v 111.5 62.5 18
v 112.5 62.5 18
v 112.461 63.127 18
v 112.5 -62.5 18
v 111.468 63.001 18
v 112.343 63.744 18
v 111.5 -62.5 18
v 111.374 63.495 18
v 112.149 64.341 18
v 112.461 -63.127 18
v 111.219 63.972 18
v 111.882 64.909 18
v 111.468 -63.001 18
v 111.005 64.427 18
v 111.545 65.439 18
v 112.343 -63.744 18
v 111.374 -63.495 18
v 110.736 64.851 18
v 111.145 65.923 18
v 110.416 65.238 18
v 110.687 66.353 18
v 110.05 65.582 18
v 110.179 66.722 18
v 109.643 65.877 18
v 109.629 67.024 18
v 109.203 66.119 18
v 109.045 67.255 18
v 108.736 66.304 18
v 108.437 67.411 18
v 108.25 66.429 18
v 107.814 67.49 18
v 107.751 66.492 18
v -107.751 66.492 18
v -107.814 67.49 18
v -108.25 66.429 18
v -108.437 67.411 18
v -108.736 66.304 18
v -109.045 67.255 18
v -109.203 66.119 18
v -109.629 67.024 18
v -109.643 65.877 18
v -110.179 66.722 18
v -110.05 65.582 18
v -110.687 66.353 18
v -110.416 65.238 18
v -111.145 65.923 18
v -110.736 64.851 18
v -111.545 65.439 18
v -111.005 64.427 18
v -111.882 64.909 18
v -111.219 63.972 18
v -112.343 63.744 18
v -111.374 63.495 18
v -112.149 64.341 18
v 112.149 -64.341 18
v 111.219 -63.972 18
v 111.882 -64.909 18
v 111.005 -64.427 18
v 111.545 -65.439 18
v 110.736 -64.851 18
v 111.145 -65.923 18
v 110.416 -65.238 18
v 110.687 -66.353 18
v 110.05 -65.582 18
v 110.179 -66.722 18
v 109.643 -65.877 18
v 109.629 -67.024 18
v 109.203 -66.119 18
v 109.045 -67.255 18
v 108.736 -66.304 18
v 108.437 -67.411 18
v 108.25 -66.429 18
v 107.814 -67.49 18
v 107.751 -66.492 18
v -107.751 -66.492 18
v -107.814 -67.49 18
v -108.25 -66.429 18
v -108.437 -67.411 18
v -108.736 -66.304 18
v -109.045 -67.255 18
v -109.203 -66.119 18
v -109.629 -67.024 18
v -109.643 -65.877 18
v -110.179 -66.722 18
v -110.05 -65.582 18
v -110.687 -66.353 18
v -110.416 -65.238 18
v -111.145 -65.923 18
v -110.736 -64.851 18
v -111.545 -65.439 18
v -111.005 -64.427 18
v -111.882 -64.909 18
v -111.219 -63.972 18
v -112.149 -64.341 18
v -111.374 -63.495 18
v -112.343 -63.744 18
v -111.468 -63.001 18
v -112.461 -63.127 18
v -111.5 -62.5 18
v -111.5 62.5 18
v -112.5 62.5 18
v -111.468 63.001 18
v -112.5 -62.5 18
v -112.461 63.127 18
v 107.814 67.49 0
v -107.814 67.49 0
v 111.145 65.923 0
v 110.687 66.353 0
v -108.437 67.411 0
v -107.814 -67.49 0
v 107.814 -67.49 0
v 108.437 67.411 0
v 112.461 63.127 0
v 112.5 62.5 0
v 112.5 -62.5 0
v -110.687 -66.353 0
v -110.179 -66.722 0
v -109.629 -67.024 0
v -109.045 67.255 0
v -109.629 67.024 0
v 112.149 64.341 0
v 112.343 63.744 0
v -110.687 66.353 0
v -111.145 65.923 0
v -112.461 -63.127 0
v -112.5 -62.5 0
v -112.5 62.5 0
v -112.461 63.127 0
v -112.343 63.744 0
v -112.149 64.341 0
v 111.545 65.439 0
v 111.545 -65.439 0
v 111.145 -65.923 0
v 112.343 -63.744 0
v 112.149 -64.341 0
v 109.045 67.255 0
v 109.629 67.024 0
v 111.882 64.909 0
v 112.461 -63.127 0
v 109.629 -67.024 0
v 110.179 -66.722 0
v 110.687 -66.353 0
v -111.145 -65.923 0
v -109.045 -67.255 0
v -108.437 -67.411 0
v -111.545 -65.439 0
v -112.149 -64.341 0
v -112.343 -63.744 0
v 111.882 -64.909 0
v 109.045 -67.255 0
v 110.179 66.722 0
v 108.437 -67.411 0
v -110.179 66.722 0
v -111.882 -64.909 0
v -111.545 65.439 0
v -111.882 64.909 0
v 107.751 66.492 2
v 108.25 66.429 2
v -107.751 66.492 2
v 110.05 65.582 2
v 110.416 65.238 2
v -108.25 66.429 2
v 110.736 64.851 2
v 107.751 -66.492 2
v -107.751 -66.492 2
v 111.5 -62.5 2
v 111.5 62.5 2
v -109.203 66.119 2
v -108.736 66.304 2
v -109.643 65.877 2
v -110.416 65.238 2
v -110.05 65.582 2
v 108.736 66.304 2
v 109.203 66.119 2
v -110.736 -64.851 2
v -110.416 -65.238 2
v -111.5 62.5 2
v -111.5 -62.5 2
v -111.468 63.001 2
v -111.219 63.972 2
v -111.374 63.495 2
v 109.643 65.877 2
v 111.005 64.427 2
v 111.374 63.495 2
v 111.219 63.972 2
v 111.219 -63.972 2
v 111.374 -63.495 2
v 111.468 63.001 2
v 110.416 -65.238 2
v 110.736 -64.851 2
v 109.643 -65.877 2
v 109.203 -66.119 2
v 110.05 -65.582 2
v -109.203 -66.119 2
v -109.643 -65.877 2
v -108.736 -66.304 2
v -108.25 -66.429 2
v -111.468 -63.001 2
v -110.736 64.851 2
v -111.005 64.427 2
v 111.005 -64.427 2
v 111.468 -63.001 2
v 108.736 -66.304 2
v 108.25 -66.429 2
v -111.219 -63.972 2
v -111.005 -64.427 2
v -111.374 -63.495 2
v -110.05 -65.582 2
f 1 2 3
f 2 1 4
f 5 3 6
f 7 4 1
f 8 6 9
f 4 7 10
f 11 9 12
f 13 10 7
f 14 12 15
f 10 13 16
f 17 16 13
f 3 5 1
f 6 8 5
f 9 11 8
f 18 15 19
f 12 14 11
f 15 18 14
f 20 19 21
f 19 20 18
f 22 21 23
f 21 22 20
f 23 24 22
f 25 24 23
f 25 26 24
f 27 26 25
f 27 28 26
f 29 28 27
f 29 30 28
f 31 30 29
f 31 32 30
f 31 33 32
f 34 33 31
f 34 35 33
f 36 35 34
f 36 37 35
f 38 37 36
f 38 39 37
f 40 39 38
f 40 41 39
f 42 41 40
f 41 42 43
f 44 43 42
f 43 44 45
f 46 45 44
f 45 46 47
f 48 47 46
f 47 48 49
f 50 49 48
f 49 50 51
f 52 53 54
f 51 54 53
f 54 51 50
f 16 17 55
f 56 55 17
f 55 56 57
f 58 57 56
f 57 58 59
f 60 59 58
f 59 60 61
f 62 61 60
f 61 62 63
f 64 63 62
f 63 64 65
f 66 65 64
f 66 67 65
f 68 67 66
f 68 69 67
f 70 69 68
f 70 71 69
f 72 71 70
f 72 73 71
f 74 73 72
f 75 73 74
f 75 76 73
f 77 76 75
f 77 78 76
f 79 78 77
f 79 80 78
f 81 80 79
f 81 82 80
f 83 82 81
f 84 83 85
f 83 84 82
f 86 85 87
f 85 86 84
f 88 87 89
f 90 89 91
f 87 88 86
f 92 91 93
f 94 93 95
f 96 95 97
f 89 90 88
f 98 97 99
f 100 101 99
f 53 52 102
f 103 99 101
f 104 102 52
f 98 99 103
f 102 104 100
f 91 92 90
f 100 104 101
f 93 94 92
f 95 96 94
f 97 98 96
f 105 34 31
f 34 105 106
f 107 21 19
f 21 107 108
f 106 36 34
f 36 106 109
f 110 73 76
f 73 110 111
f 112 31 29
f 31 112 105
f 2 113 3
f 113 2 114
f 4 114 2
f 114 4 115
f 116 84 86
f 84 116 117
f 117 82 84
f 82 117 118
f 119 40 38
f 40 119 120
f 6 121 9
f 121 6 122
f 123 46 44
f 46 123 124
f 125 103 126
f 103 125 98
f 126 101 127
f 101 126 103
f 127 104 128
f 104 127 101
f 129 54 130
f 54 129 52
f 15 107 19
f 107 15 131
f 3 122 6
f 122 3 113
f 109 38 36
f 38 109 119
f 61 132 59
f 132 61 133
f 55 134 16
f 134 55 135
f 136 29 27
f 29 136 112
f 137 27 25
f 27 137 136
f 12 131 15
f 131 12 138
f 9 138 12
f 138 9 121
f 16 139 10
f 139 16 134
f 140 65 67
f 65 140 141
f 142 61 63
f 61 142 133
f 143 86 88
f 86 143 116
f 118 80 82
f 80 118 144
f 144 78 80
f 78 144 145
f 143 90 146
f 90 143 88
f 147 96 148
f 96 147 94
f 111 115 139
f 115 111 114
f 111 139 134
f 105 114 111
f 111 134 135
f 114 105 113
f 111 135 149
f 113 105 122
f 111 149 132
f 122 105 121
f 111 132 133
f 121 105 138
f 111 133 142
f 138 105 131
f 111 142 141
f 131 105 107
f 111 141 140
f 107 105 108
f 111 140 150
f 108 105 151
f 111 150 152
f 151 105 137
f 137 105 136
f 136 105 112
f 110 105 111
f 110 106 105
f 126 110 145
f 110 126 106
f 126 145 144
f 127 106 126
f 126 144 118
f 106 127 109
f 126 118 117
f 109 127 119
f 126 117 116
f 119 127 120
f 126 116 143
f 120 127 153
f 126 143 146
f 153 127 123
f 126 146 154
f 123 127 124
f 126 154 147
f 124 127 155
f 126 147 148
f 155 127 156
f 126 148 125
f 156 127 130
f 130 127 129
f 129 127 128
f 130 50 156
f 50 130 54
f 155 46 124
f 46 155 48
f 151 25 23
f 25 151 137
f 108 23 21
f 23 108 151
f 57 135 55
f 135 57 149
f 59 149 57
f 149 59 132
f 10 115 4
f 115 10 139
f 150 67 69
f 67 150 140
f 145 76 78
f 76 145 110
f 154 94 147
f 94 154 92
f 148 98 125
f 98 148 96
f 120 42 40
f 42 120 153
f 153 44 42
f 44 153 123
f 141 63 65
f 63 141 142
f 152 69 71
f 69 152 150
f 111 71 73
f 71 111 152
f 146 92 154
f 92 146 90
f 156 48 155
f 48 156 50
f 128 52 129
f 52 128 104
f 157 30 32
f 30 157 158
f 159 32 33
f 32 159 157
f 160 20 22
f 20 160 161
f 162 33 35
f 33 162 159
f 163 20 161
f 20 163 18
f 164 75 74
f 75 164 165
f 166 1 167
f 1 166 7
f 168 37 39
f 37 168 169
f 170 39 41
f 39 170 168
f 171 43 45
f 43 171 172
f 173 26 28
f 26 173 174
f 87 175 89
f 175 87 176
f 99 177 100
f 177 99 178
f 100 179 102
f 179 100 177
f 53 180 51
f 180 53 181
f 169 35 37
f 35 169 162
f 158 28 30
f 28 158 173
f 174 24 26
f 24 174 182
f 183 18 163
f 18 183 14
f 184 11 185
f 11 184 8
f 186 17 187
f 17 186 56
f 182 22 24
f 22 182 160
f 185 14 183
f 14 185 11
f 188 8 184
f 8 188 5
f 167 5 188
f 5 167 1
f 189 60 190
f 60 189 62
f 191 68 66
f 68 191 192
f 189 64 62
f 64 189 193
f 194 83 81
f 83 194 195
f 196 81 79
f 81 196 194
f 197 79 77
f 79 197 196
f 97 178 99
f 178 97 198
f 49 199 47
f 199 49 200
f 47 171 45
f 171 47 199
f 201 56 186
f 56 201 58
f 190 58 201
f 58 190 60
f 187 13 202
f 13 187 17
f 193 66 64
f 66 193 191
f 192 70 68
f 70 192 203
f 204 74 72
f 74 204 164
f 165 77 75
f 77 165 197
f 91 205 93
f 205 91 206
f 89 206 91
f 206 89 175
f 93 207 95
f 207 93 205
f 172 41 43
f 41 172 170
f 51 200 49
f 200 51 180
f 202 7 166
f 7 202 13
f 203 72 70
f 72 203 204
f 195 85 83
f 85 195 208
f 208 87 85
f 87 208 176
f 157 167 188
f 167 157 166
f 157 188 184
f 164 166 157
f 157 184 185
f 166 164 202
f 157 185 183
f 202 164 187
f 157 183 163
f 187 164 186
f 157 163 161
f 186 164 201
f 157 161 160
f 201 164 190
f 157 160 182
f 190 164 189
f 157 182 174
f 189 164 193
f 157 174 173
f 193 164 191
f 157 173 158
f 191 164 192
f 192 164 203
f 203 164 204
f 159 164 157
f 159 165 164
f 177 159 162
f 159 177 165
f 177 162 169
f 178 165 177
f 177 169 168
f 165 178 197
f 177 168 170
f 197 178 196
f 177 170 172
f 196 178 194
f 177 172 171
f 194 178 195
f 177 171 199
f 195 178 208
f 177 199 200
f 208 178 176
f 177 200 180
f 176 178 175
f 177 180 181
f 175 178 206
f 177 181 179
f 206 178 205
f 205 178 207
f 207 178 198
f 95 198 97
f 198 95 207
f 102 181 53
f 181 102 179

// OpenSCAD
$fn = 50;


difference() {
	union() {
		hull() {
			translate(v = [-107.5000000000, 62.5000000000, 0]) {
				cylinder(h = 18, r = 5);
			}
			translate(v = [107.5000000000, 62.5000000000, 0]) {
				cylinder(h = 18, r = 5);
			}
			translate(v = [-107.5000000000, -62.5000000000, 0]) {
				cylinder(h = 18, r = 5);
			}
			translate(v = [107.5000000000, -62.5000000000, 0]) {
				cylinder(h = 18, r = 5);
			}
		}
	}
	union() {
		translate(v = [0, 0, 2]) {
			hull() {
				translate(v = [-107.5000000000, 62.5000000000, 0]) {
					cylinder(h = 16, r = 4);
				}
				translate(v = [107.5000000000, 62.5000000000, 0]) {
					cylinder(h = 16, r = 4);
				}
				translate(v = [-107.5000000000, -62.5000000000, 0]) {
					cylinder(h = 16, r = 4);
				}
				translate(v = [107.5000000000, -62.5000000000, 0]) {
					cylinder(h = 16, r = 4);
				}
			}
		}
	}
}
